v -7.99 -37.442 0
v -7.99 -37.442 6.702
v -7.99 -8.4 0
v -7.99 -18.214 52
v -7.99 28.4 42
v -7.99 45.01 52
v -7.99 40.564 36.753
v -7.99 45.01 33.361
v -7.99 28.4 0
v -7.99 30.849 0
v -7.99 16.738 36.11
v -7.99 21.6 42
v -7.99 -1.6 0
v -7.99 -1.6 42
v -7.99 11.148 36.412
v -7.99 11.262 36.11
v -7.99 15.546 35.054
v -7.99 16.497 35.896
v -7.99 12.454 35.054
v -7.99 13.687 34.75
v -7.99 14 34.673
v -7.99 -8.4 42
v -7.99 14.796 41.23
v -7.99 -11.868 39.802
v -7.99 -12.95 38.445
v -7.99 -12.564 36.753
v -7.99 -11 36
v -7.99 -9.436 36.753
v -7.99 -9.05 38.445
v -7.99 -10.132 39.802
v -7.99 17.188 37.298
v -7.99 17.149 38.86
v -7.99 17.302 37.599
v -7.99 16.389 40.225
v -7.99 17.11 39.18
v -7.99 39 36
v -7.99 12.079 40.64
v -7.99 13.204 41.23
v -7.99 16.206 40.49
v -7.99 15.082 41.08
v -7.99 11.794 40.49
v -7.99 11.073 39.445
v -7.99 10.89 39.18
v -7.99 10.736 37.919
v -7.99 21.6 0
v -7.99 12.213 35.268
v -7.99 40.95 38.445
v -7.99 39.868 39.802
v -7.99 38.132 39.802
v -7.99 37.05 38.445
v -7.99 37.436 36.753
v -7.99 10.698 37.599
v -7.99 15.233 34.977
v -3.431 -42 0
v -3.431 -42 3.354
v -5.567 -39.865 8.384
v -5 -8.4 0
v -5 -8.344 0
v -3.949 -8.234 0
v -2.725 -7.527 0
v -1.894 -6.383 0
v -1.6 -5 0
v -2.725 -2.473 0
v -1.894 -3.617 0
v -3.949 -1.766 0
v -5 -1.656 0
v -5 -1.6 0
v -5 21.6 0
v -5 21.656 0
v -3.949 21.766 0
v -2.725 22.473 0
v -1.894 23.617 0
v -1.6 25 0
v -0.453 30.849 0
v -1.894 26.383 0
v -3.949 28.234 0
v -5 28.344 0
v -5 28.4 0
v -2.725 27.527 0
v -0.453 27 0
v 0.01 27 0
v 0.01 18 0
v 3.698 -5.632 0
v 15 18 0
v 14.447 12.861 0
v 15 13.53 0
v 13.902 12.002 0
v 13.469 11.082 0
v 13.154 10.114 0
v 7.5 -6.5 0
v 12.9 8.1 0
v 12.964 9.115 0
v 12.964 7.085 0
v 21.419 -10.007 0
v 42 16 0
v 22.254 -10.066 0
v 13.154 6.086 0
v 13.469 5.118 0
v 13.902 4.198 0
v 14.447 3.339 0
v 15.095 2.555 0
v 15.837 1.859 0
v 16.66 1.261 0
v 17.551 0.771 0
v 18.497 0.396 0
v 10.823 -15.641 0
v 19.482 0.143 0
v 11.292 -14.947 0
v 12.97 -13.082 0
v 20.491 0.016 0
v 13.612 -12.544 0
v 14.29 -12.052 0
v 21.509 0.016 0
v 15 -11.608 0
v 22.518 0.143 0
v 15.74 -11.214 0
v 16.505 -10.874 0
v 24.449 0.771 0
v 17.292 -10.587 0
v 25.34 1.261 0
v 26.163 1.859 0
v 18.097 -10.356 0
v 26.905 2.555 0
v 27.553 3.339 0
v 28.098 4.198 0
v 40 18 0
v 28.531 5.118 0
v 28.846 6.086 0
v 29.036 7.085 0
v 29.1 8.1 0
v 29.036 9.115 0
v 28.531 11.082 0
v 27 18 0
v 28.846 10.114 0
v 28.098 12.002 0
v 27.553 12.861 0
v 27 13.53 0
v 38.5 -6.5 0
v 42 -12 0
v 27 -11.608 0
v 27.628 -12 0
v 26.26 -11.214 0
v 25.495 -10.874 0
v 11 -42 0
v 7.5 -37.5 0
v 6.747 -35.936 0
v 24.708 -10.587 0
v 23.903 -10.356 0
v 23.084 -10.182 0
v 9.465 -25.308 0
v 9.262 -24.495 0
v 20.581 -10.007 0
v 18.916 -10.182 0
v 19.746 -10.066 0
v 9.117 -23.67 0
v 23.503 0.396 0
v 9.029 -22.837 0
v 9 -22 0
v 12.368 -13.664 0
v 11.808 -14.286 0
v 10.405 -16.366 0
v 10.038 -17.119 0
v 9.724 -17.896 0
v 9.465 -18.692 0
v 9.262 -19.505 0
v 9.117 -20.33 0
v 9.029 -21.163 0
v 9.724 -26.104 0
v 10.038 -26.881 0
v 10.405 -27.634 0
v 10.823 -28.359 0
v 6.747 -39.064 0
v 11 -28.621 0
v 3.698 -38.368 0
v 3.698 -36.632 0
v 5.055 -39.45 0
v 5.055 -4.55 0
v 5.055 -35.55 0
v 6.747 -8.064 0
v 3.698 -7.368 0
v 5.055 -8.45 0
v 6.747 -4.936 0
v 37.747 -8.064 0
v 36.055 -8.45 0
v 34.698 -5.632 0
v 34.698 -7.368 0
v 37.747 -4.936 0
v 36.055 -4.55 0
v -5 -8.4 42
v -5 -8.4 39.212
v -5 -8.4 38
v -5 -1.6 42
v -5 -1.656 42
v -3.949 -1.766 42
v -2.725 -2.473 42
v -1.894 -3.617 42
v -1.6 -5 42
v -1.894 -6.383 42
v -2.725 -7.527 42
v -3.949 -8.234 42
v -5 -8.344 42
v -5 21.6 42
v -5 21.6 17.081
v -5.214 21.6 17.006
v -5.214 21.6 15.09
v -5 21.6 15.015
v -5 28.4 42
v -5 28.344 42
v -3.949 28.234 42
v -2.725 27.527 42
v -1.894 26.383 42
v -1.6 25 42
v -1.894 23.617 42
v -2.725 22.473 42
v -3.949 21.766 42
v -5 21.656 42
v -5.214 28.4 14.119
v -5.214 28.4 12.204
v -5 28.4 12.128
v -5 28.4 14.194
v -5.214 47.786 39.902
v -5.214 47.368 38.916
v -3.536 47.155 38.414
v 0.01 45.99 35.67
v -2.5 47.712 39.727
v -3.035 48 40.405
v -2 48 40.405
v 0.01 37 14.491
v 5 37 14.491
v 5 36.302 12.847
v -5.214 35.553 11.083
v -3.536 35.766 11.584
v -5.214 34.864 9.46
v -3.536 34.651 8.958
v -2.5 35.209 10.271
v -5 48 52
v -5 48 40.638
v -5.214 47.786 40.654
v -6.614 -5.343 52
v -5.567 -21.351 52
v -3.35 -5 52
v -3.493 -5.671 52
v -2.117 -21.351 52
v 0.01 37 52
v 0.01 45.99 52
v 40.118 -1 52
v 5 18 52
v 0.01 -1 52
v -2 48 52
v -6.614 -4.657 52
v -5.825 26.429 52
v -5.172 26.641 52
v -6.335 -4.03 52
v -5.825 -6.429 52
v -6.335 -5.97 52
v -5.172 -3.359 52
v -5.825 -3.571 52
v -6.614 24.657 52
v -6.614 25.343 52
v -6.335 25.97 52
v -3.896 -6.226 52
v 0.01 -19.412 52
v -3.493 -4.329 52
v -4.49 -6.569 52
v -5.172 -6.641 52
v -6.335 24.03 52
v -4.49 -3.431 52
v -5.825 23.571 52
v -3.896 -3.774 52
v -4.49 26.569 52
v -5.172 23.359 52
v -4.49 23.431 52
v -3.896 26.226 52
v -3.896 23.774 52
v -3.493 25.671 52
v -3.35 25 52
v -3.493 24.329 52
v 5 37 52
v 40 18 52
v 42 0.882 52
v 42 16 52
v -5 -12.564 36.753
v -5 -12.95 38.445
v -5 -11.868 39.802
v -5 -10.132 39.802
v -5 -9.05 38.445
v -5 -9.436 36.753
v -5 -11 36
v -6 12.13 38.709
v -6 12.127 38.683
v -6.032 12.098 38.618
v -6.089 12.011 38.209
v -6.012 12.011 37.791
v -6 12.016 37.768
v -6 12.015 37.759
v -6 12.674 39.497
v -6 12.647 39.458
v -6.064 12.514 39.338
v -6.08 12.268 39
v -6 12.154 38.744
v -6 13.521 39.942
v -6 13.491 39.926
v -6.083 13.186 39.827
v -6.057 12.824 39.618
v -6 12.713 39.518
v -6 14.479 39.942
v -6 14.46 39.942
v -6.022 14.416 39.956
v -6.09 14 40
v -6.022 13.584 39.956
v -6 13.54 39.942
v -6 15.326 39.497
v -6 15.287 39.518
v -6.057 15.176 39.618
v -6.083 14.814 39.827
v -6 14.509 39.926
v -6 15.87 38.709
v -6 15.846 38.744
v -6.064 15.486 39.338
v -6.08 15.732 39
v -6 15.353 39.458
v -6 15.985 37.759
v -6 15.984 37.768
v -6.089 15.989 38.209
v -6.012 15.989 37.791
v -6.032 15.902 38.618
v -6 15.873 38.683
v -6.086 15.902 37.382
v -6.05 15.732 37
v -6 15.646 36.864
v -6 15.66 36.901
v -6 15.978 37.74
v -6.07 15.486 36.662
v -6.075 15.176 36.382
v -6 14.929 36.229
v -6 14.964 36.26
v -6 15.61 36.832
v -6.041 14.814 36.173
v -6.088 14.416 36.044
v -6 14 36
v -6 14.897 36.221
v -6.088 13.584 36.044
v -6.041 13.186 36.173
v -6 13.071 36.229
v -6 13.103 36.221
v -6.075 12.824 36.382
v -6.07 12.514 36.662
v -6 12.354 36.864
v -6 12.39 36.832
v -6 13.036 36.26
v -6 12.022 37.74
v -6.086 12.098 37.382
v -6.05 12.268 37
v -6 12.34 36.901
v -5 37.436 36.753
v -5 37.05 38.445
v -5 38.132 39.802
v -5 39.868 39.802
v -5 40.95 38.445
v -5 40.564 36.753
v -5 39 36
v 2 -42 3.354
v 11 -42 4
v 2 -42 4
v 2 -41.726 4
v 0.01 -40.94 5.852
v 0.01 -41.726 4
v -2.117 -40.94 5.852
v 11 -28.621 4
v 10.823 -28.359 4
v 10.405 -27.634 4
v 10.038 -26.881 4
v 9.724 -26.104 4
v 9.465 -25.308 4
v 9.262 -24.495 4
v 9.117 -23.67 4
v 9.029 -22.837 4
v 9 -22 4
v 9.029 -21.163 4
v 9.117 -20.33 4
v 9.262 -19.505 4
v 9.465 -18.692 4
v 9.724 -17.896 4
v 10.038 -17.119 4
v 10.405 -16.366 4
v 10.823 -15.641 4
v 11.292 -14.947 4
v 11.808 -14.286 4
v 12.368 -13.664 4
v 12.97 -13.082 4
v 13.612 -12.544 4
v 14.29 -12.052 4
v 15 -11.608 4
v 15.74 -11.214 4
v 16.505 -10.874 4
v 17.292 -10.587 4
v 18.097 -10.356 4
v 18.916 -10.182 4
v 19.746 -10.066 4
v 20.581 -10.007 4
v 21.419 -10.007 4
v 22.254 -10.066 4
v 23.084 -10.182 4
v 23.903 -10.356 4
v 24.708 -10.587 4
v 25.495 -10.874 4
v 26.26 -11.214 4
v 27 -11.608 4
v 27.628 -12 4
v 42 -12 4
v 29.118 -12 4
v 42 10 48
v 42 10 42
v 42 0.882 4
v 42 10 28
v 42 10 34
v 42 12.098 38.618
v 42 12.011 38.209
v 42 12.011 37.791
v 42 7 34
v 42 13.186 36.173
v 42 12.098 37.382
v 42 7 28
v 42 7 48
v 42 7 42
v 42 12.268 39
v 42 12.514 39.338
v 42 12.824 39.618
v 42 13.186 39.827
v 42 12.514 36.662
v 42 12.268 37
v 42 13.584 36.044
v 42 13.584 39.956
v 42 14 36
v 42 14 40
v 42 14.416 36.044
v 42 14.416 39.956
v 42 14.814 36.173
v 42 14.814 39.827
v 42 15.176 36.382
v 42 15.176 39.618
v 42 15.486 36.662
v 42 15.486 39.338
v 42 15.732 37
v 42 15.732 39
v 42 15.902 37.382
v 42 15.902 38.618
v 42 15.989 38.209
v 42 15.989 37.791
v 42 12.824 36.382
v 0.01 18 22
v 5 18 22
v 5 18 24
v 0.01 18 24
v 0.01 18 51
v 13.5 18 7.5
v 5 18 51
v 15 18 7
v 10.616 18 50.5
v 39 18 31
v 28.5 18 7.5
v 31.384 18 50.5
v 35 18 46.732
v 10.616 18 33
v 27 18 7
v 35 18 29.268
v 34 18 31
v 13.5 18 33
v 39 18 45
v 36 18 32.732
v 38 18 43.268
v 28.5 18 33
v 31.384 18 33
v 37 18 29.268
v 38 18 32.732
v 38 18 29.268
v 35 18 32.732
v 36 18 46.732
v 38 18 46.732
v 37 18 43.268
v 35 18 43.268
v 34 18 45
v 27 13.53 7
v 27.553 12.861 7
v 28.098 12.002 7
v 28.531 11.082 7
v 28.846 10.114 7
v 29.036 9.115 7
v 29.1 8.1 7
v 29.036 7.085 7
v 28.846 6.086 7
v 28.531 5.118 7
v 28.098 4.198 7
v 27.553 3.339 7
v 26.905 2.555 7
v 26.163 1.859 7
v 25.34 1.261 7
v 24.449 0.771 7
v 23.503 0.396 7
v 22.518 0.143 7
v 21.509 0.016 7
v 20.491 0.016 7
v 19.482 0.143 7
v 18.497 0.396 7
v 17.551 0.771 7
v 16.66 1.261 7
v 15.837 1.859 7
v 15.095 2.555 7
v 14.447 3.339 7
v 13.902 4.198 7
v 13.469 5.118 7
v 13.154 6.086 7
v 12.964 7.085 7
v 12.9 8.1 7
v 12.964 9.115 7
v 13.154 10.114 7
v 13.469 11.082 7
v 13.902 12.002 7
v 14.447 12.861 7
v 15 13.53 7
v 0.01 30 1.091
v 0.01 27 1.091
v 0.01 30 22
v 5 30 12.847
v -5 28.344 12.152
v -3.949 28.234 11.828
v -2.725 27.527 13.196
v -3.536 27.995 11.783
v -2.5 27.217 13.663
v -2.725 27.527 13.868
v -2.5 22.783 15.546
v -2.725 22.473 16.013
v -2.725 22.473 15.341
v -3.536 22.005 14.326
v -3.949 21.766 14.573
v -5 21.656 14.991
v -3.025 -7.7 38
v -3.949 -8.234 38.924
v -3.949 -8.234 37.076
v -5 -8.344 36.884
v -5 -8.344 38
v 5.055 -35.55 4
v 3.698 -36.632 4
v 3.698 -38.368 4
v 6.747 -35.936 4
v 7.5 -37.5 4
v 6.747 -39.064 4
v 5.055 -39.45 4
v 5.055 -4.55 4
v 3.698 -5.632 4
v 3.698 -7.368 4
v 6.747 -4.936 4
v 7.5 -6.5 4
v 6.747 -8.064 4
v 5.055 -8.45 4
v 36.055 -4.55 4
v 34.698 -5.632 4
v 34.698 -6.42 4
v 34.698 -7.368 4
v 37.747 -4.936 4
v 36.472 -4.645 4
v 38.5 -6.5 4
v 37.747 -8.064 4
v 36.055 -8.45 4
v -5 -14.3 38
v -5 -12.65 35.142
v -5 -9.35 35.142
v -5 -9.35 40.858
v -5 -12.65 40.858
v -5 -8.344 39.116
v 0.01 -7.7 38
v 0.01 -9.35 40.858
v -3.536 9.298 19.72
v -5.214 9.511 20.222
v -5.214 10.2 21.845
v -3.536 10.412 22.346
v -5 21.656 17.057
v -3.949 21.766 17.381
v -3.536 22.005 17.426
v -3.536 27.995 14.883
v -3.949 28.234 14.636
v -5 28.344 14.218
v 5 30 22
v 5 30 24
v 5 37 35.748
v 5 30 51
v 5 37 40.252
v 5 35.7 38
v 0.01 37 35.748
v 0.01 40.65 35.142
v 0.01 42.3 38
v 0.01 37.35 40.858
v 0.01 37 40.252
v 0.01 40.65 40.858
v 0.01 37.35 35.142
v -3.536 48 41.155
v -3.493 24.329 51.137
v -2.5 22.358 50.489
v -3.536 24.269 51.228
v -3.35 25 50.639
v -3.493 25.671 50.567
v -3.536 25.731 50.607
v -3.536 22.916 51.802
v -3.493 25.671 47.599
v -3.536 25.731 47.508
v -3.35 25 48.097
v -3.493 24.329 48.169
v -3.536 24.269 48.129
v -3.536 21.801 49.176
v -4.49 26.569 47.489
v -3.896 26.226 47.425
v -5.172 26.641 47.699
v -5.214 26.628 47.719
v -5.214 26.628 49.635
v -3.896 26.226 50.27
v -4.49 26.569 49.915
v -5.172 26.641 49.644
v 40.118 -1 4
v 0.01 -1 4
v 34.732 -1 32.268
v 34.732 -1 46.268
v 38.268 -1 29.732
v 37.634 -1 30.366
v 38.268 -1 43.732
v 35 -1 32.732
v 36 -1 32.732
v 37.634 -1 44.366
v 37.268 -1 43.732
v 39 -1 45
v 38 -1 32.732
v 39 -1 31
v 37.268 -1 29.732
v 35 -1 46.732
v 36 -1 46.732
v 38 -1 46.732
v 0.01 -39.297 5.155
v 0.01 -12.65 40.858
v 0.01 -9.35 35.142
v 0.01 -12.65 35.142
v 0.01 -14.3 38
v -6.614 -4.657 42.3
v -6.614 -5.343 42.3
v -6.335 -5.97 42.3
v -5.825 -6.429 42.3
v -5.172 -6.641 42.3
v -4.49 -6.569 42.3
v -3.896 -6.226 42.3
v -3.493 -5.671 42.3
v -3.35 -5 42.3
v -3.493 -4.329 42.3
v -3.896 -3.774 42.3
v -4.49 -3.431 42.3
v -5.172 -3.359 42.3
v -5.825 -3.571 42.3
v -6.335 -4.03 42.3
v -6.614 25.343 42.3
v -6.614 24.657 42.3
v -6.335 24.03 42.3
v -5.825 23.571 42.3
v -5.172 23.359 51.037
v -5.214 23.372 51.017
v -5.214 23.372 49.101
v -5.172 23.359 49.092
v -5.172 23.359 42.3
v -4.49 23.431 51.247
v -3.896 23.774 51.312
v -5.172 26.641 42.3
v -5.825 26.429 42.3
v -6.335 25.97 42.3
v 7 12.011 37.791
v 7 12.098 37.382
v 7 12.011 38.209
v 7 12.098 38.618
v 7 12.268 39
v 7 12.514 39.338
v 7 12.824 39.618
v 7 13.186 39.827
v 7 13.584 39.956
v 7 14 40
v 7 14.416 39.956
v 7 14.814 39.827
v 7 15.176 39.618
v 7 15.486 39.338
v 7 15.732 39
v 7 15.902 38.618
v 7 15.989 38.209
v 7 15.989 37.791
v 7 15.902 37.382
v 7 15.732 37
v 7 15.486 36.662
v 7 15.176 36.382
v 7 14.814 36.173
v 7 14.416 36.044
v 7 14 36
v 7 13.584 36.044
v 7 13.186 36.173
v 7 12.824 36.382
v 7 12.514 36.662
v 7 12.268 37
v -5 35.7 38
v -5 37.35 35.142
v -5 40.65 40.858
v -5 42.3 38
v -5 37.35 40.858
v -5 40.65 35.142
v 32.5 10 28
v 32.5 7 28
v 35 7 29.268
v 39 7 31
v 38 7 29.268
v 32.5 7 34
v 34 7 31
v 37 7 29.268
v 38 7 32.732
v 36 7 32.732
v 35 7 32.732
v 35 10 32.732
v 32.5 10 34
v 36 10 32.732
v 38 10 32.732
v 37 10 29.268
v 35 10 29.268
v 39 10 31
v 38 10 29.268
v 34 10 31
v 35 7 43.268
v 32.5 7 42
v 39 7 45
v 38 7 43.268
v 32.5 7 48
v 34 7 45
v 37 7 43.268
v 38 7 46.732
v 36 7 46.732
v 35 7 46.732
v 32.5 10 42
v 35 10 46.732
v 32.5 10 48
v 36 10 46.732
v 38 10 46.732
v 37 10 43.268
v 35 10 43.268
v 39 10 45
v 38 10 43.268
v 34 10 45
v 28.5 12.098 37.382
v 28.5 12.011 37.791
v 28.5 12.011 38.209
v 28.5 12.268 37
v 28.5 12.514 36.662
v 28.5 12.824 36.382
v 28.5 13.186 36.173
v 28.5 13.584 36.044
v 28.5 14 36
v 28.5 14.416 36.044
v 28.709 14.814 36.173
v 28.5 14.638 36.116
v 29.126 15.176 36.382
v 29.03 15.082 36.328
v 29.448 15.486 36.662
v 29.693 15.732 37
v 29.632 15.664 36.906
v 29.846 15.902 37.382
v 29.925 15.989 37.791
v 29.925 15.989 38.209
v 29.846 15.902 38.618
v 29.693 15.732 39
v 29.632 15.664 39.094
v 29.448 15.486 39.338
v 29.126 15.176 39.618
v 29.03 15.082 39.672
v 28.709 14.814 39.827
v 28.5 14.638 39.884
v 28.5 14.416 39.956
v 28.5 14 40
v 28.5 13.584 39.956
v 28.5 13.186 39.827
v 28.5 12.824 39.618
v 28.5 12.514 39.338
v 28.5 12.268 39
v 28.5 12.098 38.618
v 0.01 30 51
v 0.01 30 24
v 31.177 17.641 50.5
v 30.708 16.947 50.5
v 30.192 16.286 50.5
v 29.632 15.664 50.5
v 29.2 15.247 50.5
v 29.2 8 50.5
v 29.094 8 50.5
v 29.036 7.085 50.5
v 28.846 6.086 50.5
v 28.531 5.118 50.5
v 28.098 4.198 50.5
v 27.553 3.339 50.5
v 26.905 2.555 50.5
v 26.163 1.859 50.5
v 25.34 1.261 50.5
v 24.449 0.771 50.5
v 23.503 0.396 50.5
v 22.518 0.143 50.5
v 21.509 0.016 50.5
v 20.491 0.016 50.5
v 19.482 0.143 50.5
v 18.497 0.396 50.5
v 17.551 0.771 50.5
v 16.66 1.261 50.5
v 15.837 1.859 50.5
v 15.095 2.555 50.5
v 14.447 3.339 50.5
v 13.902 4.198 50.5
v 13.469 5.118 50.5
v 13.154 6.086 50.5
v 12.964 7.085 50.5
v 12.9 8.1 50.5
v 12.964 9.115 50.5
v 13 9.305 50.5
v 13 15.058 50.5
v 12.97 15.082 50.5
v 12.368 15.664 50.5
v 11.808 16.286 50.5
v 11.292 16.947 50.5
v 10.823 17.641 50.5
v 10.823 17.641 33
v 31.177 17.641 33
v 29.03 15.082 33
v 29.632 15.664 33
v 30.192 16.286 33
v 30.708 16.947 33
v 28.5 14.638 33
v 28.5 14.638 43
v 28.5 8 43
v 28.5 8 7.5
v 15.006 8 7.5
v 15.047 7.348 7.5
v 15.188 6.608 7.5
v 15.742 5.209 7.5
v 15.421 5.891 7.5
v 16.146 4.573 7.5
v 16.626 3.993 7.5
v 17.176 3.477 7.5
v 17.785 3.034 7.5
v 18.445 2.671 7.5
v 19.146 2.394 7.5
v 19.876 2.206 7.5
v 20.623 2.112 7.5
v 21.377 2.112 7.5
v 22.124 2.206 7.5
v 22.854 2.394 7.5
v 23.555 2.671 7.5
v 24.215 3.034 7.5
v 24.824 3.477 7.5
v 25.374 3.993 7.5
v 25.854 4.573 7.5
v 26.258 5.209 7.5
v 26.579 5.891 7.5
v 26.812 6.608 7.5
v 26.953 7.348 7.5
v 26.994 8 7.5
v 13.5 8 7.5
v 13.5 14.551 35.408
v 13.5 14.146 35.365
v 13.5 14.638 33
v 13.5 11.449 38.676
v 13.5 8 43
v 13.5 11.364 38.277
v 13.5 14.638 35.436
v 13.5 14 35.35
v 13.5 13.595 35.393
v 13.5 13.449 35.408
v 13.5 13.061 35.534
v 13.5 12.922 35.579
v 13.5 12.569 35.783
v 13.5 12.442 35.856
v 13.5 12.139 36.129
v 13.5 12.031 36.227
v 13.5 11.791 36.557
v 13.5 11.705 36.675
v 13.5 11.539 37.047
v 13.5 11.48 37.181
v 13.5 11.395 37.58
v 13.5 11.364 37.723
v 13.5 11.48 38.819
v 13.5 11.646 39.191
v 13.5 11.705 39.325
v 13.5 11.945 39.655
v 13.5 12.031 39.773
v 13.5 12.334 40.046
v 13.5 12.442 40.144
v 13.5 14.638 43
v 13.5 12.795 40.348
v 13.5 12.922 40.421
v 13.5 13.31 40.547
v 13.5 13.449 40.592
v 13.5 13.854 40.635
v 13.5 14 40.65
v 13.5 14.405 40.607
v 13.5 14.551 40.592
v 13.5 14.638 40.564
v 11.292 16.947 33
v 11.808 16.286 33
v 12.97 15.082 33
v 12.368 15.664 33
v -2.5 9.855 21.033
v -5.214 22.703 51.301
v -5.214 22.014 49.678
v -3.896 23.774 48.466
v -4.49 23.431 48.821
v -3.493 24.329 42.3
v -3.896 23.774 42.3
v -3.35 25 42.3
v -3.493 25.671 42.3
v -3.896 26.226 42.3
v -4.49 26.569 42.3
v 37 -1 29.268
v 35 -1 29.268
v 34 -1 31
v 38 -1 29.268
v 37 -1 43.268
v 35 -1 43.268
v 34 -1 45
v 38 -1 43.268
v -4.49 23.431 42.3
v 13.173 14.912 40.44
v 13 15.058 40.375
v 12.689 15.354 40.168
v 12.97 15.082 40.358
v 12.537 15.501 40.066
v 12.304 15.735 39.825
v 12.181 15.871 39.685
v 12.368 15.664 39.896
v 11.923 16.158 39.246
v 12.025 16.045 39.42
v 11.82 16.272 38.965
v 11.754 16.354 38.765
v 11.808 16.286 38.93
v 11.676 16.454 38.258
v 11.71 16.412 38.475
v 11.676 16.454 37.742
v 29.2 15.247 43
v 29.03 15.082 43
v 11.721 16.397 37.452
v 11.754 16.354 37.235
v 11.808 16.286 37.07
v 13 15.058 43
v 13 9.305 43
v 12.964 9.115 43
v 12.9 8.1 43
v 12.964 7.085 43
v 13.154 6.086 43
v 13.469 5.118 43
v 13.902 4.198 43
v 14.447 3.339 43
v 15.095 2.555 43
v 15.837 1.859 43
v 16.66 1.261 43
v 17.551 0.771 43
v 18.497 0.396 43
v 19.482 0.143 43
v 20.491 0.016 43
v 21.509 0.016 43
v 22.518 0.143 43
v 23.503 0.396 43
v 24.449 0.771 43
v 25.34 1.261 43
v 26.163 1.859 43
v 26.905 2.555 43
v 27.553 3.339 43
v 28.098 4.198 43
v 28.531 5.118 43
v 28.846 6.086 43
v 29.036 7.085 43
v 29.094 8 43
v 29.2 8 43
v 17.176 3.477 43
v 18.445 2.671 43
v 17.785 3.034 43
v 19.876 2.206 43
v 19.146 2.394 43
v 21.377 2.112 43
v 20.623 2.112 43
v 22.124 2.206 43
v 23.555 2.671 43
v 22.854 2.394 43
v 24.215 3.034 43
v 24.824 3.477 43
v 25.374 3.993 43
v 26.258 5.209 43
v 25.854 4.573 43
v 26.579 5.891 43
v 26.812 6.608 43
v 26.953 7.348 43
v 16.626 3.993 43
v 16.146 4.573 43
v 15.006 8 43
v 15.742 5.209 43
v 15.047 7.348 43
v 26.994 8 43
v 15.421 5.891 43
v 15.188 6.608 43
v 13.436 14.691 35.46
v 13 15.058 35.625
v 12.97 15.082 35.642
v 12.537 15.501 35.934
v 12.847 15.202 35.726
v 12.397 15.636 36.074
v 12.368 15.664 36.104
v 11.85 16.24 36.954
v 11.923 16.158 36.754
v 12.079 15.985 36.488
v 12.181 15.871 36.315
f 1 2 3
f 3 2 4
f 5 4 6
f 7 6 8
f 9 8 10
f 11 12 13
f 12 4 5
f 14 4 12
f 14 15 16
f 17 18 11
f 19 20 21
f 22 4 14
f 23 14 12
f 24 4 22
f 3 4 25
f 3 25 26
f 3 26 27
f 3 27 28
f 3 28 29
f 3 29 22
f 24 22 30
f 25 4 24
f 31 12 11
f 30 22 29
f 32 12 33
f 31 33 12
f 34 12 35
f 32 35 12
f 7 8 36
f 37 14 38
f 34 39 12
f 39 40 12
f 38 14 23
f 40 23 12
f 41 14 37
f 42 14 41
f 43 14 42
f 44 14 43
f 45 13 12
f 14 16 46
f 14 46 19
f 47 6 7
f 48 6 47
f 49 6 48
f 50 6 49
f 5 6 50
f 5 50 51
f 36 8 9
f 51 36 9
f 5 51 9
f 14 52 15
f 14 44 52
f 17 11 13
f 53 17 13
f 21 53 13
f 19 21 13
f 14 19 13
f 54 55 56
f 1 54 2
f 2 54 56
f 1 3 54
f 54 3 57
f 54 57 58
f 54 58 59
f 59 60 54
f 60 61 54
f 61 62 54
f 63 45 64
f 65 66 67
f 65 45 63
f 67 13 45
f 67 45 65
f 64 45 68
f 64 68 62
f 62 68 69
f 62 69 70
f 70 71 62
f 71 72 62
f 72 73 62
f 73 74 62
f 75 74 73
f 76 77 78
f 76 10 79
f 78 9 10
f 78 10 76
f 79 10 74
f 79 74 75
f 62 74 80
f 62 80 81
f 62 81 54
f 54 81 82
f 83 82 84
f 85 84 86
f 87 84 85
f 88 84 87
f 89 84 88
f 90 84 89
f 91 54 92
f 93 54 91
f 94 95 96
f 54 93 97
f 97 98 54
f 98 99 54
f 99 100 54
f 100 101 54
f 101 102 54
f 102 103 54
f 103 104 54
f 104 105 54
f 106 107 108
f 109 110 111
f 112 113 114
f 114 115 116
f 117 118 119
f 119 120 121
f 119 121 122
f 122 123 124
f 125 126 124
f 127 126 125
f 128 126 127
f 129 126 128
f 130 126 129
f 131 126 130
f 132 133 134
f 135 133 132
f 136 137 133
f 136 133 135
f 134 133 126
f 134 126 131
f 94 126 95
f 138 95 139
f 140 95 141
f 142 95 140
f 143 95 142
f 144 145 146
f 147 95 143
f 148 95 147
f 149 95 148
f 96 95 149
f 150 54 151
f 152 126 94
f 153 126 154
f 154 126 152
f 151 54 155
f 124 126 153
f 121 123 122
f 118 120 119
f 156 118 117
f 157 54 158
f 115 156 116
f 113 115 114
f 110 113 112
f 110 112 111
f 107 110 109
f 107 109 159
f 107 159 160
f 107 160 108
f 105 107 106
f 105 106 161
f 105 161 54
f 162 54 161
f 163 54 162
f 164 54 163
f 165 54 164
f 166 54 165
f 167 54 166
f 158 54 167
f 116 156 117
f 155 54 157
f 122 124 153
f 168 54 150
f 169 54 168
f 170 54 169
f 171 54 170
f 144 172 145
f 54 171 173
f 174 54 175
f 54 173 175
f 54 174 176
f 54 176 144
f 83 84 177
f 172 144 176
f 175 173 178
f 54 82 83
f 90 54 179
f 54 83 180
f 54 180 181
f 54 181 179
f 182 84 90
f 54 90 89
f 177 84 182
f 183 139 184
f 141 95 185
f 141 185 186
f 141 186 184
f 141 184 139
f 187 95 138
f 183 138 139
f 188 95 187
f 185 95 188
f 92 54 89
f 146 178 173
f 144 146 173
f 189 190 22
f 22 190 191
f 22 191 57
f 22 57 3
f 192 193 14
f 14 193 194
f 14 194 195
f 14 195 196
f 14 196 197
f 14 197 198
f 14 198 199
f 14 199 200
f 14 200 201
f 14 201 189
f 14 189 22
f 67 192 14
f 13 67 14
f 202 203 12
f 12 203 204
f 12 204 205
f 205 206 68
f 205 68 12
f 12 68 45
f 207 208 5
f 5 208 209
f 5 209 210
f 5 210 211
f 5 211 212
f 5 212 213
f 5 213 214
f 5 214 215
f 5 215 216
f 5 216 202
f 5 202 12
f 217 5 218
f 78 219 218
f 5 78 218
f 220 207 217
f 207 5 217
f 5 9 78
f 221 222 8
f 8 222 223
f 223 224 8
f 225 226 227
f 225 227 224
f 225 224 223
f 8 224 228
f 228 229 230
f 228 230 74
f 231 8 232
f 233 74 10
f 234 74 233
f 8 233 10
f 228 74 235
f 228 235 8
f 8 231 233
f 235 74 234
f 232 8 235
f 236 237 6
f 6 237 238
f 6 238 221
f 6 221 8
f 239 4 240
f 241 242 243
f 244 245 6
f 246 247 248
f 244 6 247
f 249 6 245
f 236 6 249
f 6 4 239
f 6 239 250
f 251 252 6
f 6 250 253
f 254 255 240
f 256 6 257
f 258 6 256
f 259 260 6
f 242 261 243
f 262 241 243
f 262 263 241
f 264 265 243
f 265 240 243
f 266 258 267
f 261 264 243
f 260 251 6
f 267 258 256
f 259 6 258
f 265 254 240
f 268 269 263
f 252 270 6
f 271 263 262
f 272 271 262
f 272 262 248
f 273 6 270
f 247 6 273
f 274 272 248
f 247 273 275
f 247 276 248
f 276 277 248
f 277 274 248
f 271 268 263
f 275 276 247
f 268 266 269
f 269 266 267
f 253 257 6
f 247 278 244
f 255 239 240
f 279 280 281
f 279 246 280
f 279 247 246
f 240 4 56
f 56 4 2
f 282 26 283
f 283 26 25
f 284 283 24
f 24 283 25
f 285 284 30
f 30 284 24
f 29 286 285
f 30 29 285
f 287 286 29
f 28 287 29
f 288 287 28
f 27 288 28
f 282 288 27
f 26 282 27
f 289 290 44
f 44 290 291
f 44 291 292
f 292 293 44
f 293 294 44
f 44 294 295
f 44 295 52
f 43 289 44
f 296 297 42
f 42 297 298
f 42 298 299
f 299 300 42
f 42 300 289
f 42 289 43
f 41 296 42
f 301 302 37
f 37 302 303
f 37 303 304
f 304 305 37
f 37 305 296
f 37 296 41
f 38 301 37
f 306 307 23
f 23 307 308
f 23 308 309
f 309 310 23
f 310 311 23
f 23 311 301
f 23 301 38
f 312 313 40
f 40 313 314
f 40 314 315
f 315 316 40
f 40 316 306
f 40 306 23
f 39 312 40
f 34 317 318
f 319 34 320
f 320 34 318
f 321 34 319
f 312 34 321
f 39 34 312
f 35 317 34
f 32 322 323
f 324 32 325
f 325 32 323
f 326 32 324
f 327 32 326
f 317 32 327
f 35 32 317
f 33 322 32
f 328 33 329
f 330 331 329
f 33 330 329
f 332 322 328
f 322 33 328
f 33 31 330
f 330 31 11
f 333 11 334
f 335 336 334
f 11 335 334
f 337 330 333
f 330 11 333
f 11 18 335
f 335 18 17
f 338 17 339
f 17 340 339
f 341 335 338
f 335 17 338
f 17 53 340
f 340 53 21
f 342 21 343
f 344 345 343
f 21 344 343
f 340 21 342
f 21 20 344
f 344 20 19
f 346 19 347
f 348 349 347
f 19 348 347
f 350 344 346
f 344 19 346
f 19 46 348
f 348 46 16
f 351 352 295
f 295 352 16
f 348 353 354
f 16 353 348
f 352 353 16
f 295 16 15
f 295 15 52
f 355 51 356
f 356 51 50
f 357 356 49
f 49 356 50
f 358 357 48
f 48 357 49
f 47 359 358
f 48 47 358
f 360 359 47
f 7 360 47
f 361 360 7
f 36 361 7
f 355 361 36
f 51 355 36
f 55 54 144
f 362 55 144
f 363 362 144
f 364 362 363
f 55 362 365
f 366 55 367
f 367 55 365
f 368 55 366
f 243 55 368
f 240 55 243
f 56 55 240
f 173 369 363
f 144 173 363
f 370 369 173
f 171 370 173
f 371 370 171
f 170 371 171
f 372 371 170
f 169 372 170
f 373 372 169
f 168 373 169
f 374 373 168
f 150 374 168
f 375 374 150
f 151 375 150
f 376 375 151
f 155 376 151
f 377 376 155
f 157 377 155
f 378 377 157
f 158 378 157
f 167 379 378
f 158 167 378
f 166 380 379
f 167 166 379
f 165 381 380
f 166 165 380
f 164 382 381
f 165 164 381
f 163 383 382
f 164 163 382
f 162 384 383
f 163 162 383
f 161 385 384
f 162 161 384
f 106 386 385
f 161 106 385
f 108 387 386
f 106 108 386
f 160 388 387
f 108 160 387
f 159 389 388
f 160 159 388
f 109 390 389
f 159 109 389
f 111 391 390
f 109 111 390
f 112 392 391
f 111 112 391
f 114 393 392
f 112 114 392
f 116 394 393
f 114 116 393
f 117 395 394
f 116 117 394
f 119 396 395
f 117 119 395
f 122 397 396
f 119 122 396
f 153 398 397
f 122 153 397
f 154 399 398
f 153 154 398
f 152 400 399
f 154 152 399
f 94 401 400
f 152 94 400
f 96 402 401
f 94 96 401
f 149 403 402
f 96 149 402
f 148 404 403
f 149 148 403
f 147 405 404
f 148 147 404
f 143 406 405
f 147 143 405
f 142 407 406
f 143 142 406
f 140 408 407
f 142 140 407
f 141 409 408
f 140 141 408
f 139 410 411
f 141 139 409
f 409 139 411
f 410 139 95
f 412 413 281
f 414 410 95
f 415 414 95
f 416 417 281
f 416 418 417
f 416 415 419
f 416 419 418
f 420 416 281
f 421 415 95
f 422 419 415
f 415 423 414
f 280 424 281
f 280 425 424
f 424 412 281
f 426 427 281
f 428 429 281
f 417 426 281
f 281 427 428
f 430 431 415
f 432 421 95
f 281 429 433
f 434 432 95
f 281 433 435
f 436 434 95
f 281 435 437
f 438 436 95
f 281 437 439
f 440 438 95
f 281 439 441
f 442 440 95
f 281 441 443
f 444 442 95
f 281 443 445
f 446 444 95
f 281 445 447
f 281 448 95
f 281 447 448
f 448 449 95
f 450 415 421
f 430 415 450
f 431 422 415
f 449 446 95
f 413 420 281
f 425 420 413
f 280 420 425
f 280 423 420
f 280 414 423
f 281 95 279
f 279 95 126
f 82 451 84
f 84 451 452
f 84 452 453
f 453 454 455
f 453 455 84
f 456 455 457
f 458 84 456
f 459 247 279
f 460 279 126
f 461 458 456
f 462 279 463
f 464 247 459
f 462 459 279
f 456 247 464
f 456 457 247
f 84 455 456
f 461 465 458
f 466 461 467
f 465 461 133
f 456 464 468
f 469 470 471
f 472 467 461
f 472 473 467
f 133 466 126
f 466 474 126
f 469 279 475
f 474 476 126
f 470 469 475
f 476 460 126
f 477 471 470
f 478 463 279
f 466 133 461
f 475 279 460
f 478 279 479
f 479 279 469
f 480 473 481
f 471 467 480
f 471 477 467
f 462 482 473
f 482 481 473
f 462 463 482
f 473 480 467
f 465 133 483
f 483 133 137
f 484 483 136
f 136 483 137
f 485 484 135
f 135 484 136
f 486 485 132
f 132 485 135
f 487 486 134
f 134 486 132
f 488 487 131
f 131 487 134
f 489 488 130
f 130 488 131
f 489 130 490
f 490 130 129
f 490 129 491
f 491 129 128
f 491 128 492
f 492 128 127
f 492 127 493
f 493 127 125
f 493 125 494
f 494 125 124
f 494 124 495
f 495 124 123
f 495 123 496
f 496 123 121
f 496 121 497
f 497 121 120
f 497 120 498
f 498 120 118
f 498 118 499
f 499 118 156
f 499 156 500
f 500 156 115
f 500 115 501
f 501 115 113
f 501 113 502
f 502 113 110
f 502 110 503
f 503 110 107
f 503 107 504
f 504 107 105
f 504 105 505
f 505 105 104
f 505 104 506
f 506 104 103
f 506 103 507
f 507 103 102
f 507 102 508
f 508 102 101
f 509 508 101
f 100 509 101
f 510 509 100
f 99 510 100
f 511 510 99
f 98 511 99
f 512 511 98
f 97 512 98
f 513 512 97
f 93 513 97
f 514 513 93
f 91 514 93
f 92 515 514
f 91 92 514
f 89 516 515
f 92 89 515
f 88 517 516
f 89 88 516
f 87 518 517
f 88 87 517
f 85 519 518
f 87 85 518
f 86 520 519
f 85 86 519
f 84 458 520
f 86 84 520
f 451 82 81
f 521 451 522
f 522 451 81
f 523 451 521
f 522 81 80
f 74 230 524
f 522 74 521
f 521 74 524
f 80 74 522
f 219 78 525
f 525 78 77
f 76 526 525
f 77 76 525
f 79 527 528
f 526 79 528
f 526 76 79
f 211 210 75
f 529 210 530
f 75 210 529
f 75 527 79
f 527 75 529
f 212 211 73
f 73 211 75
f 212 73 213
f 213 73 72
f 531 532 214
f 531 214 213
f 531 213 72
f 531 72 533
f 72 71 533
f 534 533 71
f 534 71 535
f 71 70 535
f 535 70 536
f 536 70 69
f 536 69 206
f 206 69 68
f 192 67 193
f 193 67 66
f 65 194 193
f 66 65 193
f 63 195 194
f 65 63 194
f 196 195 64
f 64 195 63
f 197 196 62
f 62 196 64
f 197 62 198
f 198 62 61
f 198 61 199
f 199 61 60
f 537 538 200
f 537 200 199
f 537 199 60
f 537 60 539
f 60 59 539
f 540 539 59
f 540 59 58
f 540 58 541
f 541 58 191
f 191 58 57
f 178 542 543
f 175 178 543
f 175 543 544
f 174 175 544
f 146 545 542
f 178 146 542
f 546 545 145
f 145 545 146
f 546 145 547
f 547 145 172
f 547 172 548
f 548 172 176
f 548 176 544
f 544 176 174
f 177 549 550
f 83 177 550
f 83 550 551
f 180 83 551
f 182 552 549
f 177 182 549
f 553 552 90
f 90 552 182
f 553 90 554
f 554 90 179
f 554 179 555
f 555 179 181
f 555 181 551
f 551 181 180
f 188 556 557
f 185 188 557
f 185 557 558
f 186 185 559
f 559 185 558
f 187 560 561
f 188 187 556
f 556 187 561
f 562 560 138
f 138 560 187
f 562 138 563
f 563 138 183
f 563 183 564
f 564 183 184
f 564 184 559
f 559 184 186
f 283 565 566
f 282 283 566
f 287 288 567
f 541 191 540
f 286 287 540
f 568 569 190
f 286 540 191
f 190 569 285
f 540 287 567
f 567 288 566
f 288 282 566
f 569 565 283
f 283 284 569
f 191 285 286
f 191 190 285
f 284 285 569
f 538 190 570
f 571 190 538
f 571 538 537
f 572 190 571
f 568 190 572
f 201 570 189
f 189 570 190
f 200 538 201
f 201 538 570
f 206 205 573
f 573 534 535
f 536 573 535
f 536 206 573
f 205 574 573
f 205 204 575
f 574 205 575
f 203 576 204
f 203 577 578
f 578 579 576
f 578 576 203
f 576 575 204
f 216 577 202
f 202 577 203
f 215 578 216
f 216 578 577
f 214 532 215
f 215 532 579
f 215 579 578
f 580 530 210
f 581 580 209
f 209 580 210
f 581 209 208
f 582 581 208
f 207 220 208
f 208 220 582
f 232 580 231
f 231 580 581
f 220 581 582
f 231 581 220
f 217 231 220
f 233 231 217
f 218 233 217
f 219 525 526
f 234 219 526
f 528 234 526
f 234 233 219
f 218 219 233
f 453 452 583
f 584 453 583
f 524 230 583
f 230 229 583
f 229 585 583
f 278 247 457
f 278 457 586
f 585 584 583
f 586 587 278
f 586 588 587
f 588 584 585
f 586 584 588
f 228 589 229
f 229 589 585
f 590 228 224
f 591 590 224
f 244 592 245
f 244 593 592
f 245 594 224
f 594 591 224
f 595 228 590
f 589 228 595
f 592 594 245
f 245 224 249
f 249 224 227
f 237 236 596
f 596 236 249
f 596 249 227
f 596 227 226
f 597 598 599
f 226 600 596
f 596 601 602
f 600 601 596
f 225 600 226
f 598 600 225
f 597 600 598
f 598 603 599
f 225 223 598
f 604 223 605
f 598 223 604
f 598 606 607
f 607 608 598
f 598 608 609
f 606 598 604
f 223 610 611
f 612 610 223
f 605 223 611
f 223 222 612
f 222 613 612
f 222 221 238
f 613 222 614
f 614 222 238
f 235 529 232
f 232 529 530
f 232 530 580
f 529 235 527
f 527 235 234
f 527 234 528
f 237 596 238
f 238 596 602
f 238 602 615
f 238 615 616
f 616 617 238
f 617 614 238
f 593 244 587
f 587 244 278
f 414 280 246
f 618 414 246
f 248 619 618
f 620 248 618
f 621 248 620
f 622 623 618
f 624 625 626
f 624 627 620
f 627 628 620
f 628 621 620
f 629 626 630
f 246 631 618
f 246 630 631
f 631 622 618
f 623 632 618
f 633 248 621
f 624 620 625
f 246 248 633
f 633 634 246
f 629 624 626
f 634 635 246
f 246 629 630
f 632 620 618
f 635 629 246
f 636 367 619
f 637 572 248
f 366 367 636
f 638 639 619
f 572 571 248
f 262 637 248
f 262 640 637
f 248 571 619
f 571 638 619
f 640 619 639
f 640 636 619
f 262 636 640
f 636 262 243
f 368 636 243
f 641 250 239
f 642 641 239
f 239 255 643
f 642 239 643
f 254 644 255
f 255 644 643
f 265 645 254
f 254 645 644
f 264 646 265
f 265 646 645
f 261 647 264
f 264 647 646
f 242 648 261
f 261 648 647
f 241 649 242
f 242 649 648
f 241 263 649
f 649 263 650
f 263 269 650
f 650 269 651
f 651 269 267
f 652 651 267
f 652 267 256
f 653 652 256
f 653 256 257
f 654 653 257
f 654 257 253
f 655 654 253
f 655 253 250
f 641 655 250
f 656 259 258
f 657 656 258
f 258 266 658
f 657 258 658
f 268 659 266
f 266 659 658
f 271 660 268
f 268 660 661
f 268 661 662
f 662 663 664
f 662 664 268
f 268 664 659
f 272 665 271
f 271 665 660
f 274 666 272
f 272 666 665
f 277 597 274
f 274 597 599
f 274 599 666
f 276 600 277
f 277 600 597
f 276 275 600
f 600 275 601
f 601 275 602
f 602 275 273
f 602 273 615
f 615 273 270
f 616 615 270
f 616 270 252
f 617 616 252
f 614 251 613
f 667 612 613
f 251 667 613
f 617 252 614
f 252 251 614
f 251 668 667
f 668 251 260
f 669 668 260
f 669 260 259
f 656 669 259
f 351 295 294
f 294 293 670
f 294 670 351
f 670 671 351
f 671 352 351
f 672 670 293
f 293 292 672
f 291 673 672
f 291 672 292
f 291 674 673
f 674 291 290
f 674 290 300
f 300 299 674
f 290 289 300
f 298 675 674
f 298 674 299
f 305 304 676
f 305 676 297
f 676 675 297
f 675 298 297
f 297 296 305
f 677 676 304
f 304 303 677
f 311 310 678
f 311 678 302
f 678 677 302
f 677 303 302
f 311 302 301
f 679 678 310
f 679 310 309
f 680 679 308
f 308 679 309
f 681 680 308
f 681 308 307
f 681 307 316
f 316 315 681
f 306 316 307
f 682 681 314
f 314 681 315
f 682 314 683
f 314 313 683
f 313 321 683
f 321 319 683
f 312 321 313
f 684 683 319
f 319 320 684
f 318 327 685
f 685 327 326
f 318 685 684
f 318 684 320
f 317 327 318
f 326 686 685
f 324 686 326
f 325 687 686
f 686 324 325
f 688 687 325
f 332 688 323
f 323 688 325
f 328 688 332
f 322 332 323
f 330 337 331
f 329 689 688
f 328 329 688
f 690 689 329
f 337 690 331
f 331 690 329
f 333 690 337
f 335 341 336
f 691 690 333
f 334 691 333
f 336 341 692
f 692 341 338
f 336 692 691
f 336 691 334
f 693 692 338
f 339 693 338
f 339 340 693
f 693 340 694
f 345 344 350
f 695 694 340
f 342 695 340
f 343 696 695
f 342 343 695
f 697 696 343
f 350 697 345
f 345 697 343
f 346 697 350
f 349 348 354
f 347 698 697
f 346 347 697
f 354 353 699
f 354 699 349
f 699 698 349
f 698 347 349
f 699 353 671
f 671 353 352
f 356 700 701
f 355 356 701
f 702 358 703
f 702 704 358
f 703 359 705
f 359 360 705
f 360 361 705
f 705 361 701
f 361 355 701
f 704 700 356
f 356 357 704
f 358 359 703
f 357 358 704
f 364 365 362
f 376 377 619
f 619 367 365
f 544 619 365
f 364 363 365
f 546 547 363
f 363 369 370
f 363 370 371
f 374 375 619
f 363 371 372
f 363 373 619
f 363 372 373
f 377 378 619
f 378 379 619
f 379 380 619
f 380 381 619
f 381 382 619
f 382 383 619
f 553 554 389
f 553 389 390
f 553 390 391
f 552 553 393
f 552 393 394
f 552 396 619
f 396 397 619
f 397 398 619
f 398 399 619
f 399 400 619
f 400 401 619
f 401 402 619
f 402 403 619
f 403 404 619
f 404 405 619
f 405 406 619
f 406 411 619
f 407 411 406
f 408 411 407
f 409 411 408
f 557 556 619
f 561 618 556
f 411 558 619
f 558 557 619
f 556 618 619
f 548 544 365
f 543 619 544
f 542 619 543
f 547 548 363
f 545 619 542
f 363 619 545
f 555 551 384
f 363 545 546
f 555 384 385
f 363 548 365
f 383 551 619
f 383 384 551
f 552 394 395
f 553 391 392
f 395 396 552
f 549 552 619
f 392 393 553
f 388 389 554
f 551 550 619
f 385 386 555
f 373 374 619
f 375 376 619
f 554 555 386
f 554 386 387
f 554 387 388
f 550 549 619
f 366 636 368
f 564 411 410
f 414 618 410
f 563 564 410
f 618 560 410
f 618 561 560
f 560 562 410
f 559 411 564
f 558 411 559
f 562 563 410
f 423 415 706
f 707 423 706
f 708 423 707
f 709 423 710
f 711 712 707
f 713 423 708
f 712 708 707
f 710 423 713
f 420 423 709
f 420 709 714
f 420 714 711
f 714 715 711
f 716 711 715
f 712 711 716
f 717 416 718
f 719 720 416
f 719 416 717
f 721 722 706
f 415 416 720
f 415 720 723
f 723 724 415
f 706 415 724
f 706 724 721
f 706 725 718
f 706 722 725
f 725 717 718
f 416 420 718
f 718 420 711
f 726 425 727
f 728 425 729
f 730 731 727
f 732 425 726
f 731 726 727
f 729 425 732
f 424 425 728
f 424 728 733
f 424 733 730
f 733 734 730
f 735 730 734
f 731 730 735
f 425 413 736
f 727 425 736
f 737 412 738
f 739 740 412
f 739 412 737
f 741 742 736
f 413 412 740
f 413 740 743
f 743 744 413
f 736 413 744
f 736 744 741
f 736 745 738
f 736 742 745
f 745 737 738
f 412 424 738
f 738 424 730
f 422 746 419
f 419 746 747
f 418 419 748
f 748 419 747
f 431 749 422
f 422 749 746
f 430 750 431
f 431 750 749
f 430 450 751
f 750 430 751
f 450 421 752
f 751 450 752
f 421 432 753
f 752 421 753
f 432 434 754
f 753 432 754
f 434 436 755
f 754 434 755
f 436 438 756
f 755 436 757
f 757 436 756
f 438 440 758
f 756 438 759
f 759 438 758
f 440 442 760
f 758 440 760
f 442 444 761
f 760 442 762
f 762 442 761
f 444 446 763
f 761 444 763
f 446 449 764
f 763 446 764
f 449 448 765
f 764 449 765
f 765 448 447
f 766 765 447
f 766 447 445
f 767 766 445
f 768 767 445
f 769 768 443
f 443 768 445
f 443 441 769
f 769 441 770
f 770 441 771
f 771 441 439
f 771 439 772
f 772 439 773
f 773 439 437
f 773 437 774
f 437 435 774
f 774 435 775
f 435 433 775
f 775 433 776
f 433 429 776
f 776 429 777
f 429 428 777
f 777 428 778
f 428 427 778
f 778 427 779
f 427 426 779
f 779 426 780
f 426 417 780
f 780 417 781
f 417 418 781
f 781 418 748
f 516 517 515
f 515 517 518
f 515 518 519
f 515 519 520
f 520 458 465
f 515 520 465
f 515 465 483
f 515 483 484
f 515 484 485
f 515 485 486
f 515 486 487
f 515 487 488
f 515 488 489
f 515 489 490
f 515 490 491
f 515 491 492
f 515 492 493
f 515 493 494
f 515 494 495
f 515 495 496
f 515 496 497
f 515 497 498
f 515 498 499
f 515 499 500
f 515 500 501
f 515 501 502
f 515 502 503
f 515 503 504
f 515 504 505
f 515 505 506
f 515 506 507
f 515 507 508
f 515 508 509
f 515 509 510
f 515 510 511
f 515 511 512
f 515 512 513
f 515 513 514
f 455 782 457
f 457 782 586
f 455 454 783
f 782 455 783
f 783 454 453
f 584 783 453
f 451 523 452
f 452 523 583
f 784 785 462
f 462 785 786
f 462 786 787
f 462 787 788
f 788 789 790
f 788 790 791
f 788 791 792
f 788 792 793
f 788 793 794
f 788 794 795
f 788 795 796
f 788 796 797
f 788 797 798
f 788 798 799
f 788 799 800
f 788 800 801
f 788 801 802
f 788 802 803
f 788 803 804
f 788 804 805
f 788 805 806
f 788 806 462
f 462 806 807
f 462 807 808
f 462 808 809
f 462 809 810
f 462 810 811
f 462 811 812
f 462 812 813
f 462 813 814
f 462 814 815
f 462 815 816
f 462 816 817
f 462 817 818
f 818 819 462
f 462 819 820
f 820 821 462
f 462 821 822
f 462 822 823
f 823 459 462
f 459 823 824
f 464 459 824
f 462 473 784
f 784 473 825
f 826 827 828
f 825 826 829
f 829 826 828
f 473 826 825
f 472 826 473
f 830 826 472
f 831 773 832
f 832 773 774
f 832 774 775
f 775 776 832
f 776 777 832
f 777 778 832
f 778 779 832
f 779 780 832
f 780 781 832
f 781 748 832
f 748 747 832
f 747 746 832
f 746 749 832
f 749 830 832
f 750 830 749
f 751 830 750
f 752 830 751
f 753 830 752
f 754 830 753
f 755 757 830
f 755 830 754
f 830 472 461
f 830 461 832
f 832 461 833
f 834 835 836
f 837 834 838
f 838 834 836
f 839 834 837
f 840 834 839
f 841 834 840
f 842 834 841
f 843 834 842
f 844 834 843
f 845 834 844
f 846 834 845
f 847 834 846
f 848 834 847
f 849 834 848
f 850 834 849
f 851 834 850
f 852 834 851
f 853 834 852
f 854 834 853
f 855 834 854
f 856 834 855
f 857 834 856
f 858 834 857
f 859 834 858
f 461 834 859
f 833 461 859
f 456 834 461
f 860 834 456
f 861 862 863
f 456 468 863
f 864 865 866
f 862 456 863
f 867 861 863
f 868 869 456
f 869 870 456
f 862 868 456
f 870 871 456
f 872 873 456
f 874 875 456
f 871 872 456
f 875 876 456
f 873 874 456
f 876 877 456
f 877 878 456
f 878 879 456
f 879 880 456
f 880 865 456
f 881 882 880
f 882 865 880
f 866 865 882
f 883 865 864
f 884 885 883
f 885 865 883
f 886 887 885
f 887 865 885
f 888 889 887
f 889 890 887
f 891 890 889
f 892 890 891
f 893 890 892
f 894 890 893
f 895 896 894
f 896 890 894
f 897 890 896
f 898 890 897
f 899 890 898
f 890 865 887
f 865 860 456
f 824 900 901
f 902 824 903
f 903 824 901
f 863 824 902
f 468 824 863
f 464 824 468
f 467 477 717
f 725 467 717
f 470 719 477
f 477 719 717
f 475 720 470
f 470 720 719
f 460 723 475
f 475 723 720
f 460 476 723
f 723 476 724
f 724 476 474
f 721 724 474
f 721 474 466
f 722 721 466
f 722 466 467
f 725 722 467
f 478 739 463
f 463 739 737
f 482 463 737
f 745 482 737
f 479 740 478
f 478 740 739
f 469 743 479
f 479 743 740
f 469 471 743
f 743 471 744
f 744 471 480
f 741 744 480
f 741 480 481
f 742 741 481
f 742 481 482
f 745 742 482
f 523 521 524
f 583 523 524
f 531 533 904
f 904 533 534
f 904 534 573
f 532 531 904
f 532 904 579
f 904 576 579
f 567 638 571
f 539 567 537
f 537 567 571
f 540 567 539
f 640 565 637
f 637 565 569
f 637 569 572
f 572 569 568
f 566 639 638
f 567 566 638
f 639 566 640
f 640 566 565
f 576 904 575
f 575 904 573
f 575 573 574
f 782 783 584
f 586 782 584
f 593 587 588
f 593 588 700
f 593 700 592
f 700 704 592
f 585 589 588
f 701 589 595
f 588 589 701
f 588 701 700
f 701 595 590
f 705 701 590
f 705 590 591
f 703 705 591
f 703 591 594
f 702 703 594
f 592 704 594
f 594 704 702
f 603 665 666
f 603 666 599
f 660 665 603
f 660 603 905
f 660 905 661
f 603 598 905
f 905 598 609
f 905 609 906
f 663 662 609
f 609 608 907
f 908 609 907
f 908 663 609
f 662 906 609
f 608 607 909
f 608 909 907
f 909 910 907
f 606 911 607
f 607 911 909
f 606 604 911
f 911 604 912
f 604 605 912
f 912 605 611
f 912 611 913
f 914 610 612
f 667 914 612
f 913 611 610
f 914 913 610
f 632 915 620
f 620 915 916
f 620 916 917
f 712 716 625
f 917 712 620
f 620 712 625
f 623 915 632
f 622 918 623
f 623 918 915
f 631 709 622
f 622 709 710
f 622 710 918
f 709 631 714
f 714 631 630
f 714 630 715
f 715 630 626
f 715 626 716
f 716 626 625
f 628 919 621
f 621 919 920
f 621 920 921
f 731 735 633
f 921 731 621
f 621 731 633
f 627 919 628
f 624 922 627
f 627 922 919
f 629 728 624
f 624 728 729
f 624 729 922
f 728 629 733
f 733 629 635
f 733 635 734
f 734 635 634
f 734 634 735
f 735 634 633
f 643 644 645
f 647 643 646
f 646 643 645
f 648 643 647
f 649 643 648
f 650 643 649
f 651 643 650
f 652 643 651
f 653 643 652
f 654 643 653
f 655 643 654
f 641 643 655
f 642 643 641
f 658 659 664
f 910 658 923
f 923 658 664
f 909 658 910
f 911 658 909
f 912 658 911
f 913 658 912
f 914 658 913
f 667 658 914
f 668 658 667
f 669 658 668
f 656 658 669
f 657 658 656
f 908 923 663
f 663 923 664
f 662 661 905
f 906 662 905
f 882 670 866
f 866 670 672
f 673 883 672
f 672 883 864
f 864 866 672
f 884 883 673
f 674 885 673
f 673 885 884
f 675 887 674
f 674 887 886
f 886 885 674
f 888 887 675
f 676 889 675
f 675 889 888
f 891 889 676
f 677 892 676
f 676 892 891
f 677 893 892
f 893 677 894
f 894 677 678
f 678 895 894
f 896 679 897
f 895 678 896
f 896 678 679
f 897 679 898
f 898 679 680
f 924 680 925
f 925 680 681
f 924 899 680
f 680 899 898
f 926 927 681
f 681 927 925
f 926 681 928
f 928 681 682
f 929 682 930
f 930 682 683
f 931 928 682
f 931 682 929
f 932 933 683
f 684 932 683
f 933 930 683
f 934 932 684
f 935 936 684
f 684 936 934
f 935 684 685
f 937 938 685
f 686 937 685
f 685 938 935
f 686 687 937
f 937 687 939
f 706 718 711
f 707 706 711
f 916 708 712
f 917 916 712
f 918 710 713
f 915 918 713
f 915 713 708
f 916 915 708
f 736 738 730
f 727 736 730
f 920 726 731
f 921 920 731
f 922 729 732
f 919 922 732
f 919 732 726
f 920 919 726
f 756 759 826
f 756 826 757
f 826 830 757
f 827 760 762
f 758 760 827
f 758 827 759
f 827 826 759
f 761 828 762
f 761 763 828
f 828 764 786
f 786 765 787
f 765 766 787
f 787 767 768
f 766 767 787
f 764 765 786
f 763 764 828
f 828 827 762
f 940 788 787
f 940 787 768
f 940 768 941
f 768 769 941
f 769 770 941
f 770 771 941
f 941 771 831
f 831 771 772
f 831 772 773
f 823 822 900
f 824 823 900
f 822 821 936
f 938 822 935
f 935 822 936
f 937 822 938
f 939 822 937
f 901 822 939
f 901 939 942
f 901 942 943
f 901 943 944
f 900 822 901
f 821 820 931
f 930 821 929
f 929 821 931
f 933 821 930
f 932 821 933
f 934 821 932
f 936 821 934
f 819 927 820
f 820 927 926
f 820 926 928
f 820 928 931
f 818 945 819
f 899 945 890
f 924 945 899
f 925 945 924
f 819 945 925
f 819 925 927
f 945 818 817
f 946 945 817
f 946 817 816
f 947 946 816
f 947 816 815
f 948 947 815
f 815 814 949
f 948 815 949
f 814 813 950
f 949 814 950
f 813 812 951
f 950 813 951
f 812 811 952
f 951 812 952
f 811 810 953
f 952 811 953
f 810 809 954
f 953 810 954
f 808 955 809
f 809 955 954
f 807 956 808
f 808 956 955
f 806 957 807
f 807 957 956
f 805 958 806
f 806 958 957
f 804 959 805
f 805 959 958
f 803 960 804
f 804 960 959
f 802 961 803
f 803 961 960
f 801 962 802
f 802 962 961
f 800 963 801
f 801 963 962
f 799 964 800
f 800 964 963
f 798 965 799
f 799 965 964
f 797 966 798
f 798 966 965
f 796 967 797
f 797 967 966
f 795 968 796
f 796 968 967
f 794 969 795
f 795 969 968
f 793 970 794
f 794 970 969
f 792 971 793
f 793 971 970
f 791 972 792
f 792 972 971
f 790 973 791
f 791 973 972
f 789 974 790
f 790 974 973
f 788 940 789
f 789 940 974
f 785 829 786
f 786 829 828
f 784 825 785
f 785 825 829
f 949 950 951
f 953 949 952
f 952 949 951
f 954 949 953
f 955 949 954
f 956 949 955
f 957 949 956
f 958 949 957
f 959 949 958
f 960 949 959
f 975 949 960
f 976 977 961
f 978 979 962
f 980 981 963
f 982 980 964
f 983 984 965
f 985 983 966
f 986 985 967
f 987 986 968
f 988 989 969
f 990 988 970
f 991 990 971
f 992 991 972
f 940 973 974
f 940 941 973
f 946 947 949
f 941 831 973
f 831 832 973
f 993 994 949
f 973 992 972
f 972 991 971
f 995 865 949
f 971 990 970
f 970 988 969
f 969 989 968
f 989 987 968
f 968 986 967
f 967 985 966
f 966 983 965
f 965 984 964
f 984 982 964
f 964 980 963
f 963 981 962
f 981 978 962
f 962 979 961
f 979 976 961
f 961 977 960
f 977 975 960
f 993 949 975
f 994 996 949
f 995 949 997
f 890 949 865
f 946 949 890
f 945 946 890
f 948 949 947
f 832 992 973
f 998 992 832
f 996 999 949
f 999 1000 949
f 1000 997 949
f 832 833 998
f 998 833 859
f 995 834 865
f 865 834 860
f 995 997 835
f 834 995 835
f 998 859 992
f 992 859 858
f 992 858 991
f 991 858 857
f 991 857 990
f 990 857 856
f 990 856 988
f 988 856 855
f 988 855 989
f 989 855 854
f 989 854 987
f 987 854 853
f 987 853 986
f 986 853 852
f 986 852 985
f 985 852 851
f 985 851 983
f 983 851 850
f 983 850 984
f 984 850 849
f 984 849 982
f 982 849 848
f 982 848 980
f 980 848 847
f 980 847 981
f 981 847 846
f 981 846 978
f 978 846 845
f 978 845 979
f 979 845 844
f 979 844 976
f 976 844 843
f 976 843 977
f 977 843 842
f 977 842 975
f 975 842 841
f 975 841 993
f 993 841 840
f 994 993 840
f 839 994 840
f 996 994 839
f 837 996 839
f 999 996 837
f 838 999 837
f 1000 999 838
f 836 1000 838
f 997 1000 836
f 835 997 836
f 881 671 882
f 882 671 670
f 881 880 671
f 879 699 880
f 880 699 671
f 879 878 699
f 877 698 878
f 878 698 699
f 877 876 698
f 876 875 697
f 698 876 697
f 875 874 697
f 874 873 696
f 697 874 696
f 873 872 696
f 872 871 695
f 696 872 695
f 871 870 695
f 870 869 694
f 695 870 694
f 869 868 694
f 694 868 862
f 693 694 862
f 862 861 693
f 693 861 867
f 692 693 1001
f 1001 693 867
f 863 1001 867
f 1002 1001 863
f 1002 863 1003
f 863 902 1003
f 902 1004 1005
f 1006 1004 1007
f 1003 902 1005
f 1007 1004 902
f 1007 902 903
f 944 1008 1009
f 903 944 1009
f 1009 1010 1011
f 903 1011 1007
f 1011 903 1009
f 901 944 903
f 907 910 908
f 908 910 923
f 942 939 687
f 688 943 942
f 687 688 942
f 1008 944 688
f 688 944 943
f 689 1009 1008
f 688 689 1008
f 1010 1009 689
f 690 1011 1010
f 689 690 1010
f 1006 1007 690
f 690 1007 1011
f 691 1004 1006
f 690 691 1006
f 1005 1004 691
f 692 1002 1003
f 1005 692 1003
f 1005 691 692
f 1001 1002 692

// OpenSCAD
// PRUSA iteration3
// NEMA 17 extruder body
// GNU GPL v3
// Josef Průša <iam@josefprusa.cz>, Kliment Yanev and contributors
// http://www.reprap.org/wiki/Prusa_Mendel
// http://prusamendel.org

// offset de los taladros de sujeción
m=5;
// distancia entre taladros de sujeción
support=30;

module nozzlemount(){
rotate([0,90,0]) cylinder(r=2, h=70, $fn=30);
translate([17,0,0]) rotate([0,90,0]) cylinder(r2=3,r1=2, h=10, $fn=30);
translate([1,0,0]) rotate([0,90,0]) cylinder(r1=4, r2=2, h=3);

translate([0,15+10,0]) rotate([0,90,0]) cylinder(r=2, h=70);
translate([10-5,15+10,0]) rotate([0,90,0]) rotate([0,0,30]) cylinder(r=3.3, h=70,$fn=6);
translate([0,-25,0]) rotate([0,90,0]) cylinder(r=2, h=70);
translate([10-5,-25,0]) rotate([0,90,0]) rotate([0,0,30])cylinder(r=3.3, h=70,$fn=6);
}


difference(){
union(){
translate([0,-1,0]) cube([42,19,52]);
translate([0,-42,0]) cube([42,42+3,4]);
translate([-7.99,-42,0]) cube([8,80+10,52]);

translate([-1,30,0]) cube([6, 7, 52]);


translate([-1,15,51]) cube([6, 20, 1]);
translate([-1,15,22]) cube([6, 20, 2]);

}

//antiwarpagenation

translate([46,-91+28,4])rotate([0,0,45]) cube(48);
translate([-11,-91,-1])rotate([0,0,45])  cube([40,40,60]);
translate([46,12,-1])rotate([0,0,45])  cube([40,40,60]);
translate([-32,12+9,-1])rotate([0,0,45]) cube([40,40,60]);
translate([6,31+9,-1])rotate([0,0,45]) cube([40,40,60]);



// motor circle cut
translate([0,-1,0.5]){
translate([21,-21,-1]) cylinder(r=12, h=5, $fn=90);

// four screw of the motor out
 translate([15-6+2,-45-5,-1]) cube([33,30,5]);
 translate([15+5,-45+6-2,-1]) cube([30,30,5]);

translate([21+15.5,-21+15.5,-1]) cylinder(r=2, h=5);
translate([21+15.5,-21-15.5,-1]) cylinder(r=2, h=5);
translate([21-15.5,-21+15.5,-1]) cylinder(r=2, h=5);
translate([21-15.5,-21-15.5,-1]) cylinder(r=2, h=5);
}



// idler bearing cutout

translate([21,24,33]) cylinder(r=12, h=17.5, $fn=90);


// espacio para el drive gear
translate([21,8.1,7.5]) cylinder(r=6 /*+2*/, h=43, $fn=50);

translate([21,8.1,-1]) cylinder(r=6, h=3, $fn=50);
// Second filament drive bearing
translate([21,8.1,1-2]) cylinder(r=8.1, h=6+2, $fn=50);
// Second filament drive bearing insert cutout
translate([13,8,43]) cube([16.2,20,7.5]);


translate([21,8.1,-5+52-4]) cylinder(r=8.1, h=7.5, $fn=50);
// corte lateral entrada 
translate([-6+21-3/2,8,7.5]) cube([12+3,12,40]);

translate([-6+21,8,-50+7]) cube([12,12,50]);

//let's capture bearing
//translate([13,8,1]) cube([16.2,20,6]);

//mounting to carriage
translate([-5,20,-28]){
translate([0,0+m ,0])rotate([0,0,0])cylinder(r=3.4, h=70, $fn=15);
//flat bottom
translate([-3.4,0+m -3.4,0])rotate([0,0,0]) cube([3.4,6.8,70]);

translate([0,0-support+m ,0])rotate([0,0,0])cylinder(r=3.4, h=70, $fn=15);
// flat bottom
translate([-3.4,-support+m -3.4,0])rotate([0,0,0]) cube([3.4,6.8,70]);
// make a layer for the holes
translate([0,0+m ,70+0.3]) rotate([0,0,0]) cylinder(r=3.3/2, h=12, $fn=15);
translate([0,0-support+m  ,70.3])rotate([0,0,0])cylinder(r=3.3/2, h=12, $fn=15);
}

// idler nuts and filament channels

translate([0,0,-2]){
translate([-10,2+8+4,52-12]) nozzlemount();
//translate([-10,2+8+4,52-12-25]) nozzlemount();

translate([32.5,7,52-12-7-3]) cube([15,3,6]);

translate([32.5,7,52-12-7-3+14]) cube([15,3,6]);


//translate([5+32,-1,52-12+7]) rotate([0,90,90]) rotate([0,0,30]) cylinder(r=3.3, h=10, $fn=6);
//translate([5+32,-1,52-12-7]) rotate([0,90,90]) rotate([0,0,30]) cylinder(r=3.3, h=10, $fn=6);



translate([5+32,-1,52-12+7]) rotate([0,90,90]) rotate([0,0,30]) cylinder(r=2, h=40, $fn=6);
translate([5+32,-1,52-12-7]) rotate([0,90,90]) rotate([0,0,30]) cylinder(r=2, h=40, $fn=6);
translate([5+31,-1,52-12+7]) rotate([0,90,90]) rotate([0,0,30]) cylinder(r=2, h=40, $fn=6);
translate([5+31,-1,52-12-7]) rotate([0,90,90]) rotate([0,0,30]) cylinder(r=2, h=40, $fn=6);


// pretty cutout
translate([-10,27+3,0]) rotate([-23,0,0]) cube([20,12+20,50+10]);
translate([-3,27,6-10]) rotate([0,23,0]) cube([20,12,50]);

// pretty cutout
translate([-10,-66,0]) rotate([-23,0,0])  cube([12,20,90]);
// new pretty
translate([-10+3,-66+5,14-10]) rotate([-23,0,0]) rotate([0,0,40]) cube([12,20,90]);
translate([10,-66+20,10]) rotate([-23,0,0]) rotate([0,0,40+90]) cube([12,20,90]);

//fan holes
translate([-4,28+10,10]) rotate([90-23,0,0])  translate([0,1,0]) cylinder(r=3/2,h=31);
translate([-4,28+10,10]) rotate([90-23,0,0])  translate([0,1+32,0]) cylinder(r=3/2,h=31);


}
}
